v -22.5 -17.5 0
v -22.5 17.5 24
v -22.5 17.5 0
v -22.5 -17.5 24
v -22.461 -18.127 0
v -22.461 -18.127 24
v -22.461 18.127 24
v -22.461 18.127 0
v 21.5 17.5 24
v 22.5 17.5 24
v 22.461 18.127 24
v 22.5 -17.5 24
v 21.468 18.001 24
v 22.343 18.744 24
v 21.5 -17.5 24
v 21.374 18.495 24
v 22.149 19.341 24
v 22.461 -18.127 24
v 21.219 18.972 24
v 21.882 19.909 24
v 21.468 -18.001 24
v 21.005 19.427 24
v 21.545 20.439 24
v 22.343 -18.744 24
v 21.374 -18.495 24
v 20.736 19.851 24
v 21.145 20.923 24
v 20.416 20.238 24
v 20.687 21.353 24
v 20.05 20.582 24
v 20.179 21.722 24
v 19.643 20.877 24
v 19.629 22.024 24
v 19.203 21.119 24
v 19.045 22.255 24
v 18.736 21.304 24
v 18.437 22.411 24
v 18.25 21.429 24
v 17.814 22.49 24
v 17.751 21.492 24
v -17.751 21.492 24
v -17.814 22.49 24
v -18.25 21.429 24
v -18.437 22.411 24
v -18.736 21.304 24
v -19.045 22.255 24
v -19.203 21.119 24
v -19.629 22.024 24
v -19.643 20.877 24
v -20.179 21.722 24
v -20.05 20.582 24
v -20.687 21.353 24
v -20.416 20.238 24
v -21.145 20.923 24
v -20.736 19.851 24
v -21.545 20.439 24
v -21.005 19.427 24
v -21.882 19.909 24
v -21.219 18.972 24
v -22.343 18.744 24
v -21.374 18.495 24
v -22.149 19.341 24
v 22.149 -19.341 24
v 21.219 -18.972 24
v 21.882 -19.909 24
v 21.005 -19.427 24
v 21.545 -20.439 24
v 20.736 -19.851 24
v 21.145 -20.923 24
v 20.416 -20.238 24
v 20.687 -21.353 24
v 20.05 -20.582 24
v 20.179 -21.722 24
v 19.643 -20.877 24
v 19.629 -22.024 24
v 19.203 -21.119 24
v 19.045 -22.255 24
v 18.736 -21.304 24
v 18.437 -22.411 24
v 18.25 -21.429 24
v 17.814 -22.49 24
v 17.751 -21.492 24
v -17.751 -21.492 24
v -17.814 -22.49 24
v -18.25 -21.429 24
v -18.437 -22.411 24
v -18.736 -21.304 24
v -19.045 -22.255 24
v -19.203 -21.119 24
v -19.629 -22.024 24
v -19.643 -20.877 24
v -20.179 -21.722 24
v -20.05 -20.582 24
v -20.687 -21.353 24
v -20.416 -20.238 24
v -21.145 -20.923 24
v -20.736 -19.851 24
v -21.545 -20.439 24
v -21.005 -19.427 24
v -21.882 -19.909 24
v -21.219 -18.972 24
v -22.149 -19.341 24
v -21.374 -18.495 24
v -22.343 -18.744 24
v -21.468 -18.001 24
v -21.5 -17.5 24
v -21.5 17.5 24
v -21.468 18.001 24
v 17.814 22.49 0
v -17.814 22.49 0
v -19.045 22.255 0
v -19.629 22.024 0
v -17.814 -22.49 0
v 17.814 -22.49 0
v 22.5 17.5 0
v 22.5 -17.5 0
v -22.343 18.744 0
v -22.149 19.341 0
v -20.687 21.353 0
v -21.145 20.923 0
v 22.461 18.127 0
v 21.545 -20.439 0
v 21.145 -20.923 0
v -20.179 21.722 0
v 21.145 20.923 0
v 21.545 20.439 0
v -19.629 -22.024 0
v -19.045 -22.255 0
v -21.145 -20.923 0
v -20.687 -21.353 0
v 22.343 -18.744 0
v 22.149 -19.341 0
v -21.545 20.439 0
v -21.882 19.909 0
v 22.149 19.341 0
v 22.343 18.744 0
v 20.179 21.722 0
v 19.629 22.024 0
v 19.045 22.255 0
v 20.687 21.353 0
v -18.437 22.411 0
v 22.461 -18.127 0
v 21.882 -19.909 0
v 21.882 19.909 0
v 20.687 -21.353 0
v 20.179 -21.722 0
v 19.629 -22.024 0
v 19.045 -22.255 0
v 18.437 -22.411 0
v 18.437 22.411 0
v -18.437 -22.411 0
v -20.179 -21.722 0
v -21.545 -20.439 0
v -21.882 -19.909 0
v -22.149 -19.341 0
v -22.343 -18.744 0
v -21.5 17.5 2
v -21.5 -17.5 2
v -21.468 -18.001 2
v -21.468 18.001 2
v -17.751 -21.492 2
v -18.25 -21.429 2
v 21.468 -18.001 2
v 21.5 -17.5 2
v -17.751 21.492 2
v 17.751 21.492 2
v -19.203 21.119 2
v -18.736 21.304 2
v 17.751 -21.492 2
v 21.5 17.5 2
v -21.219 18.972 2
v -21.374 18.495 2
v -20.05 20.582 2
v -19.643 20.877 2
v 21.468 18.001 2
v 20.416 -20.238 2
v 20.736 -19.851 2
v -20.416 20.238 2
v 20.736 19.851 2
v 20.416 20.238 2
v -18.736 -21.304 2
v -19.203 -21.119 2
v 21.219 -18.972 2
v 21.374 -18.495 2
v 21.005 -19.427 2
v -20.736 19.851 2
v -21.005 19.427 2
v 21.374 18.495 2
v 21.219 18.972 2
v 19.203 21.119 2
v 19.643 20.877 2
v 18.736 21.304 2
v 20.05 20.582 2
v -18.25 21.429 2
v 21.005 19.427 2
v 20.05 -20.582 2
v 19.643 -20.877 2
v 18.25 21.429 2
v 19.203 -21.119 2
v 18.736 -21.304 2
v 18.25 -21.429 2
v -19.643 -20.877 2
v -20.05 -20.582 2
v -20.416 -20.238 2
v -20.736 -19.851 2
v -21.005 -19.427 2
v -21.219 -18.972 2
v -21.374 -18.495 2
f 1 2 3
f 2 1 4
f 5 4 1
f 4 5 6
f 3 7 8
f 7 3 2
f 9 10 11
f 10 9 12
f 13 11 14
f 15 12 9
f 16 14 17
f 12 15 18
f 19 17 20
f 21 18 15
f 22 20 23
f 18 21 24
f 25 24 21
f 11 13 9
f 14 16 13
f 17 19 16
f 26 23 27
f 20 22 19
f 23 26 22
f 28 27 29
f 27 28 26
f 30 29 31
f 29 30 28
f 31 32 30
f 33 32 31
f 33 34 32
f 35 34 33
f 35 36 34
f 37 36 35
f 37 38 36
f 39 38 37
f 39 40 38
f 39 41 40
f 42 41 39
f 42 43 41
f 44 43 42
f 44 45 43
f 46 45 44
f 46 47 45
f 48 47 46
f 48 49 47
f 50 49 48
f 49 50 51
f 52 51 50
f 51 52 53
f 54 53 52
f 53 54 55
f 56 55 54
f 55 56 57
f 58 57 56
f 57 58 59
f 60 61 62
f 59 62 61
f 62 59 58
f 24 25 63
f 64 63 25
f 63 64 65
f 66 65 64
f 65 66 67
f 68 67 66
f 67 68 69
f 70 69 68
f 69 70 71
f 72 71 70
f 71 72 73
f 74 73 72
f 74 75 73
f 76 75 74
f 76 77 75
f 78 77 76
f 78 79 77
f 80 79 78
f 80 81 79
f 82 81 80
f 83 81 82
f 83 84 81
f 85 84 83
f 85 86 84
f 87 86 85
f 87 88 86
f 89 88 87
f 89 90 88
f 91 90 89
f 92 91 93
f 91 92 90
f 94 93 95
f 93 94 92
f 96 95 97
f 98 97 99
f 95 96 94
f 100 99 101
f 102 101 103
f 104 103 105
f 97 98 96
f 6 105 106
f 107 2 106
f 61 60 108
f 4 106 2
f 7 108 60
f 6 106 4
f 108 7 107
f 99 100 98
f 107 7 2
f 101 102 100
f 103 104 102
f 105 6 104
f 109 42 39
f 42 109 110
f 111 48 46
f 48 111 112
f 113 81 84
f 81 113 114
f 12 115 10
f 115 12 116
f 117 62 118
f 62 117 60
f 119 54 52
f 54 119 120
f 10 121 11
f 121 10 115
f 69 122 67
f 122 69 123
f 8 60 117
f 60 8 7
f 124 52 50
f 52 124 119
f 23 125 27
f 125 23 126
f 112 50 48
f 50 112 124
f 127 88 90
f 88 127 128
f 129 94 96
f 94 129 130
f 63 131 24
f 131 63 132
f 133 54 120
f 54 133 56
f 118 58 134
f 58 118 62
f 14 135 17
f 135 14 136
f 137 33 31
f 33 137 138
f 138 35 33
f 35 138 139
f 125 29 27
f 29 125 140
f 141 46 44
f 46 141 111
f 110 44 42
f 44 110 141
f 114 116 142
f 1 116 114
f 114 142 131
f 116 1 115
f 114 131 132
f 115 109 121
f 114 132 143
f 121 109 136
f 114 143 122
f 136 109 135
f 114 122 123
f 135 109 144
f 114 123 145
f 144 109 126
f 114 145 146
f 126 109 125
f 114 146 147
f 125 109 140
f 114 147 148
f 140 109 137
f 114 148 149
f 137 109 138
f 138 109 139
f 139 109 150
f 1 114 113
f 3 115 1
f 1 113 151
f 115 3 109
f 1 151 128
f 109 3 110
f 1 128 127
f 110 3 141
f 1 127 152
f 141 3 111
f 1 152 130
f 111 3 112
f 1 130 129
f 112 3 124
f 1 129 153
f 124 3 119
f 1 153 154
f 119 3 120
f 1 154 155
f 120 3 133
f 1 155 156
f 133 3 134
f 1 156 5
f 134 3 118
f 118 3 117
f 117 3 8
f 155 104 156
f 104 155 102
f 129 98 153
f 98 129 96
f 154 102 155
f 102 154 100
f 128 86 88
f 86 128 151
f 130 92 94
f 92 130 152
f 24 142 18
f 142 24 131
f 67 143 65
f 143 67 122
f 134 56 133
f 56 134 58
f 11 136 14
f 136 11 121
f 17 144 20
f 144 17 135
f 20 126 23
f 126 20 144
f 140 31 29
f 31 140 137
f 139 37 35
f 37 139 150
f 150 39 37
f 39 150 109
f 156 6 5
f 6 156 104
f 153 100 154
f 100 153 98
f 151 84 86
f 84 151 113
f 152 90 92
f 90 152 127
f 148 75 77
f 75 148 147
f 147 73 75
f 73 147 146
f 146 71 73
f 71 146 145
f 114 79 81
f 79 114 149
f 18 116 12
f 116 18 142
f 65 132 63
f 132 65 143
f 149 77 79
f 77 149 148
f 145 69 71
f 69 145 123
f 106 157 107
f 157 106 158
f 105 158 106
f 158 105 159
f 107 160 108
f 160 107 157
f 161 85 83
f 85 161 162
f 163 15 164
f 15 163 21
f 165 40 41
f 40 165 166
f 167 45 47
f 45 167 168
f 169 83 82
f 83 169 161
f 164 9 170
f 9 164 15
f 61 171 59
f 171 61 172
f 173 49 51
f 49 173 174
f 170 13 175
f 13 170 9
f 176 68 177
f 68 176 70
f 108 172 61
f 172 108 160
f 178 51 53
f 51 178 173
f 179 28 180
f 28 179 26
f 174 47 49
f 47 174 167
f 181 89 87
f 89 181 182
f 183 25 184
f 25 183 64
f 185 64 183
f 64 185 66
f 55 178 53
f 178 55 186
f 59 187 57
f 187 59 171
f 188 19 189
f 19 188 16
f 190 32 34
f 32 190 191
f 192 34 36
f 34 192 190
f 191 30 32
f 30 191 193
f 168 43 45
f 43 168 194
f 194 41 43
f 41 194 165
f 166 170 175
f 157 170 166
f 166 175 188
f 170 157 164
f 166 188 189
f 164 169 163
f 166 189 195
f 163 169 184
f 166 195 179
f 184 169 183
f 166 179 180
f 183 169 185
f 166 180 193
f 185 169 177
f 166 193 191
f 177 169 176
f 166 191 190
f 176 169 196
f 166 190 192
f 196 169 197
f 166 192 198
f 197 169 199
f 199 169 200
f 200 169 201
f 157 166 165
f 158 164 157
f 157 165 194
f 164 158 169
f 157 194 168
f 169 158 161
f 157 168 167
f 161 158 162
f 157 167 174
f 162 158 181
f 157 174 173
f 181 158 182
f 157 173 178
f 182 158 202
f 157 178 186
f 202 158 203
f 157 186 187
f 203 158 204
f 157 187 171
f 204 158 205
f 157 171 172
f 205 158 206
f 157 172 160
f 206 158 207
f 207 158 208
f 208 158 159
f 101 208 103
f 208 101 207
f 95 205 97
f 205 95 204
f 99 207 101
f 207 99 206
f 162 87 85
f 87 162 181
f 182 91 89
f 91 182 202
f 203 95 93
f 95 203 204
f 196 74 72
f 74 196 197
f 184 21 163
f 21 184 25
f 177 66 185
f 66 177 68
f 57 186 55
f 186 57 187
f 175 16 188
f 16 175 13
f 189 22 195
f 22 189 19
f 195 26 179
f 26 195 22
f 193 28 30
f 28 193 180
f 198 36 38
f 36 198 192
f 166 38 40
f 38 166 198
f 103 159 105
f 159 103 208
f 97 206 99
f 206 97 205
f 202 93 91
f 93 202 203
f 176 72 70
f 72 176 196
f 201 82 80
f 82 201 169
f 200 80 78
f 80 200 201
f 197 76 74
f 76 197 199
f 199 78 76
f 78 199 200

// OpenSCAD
$fn = 50;


difference() {
	union() {
		hull() {
			translate(v = [-17.5000000000, 17.5000000000, 0]) {
				cylinder(h = 24, r = 5);
			}
			translate(v = [17.5000000000, 17.5000000000, 0]) {
				cylinder(h = 24, r = 5);
			}
			translate(v = [-17.5000000000, -17.5000000000, 0]) {
				cylinder(h = 24, r = 5);
			}
			translate(v = [17.5000000000, -17.5000000000, 0]) {
				cylinder(h = 24, r = 5);
			}
		}
	}
	union() {
		translate(v = [0, 0, 2]) {
			hull() {
				translate(v = [-17.5000000000, 17.5000000000, 0]) {
					cylinder(h = 22, r = 4);
				}
				translate(v = [17.5000000000, 17.5000000000, 0]) {
					cylinder(h = 22, r = 4);
				}
				translate(v = [-17.5000000000, -17.5000000000, 0]) {
					cylinder(h = 22, r = 4);
				}
				translate(v = [17.5000000000, -17.5000000000, 0]) {
					cylinder(h = 22, r = 4);
				}
			}
		}
	}
}
